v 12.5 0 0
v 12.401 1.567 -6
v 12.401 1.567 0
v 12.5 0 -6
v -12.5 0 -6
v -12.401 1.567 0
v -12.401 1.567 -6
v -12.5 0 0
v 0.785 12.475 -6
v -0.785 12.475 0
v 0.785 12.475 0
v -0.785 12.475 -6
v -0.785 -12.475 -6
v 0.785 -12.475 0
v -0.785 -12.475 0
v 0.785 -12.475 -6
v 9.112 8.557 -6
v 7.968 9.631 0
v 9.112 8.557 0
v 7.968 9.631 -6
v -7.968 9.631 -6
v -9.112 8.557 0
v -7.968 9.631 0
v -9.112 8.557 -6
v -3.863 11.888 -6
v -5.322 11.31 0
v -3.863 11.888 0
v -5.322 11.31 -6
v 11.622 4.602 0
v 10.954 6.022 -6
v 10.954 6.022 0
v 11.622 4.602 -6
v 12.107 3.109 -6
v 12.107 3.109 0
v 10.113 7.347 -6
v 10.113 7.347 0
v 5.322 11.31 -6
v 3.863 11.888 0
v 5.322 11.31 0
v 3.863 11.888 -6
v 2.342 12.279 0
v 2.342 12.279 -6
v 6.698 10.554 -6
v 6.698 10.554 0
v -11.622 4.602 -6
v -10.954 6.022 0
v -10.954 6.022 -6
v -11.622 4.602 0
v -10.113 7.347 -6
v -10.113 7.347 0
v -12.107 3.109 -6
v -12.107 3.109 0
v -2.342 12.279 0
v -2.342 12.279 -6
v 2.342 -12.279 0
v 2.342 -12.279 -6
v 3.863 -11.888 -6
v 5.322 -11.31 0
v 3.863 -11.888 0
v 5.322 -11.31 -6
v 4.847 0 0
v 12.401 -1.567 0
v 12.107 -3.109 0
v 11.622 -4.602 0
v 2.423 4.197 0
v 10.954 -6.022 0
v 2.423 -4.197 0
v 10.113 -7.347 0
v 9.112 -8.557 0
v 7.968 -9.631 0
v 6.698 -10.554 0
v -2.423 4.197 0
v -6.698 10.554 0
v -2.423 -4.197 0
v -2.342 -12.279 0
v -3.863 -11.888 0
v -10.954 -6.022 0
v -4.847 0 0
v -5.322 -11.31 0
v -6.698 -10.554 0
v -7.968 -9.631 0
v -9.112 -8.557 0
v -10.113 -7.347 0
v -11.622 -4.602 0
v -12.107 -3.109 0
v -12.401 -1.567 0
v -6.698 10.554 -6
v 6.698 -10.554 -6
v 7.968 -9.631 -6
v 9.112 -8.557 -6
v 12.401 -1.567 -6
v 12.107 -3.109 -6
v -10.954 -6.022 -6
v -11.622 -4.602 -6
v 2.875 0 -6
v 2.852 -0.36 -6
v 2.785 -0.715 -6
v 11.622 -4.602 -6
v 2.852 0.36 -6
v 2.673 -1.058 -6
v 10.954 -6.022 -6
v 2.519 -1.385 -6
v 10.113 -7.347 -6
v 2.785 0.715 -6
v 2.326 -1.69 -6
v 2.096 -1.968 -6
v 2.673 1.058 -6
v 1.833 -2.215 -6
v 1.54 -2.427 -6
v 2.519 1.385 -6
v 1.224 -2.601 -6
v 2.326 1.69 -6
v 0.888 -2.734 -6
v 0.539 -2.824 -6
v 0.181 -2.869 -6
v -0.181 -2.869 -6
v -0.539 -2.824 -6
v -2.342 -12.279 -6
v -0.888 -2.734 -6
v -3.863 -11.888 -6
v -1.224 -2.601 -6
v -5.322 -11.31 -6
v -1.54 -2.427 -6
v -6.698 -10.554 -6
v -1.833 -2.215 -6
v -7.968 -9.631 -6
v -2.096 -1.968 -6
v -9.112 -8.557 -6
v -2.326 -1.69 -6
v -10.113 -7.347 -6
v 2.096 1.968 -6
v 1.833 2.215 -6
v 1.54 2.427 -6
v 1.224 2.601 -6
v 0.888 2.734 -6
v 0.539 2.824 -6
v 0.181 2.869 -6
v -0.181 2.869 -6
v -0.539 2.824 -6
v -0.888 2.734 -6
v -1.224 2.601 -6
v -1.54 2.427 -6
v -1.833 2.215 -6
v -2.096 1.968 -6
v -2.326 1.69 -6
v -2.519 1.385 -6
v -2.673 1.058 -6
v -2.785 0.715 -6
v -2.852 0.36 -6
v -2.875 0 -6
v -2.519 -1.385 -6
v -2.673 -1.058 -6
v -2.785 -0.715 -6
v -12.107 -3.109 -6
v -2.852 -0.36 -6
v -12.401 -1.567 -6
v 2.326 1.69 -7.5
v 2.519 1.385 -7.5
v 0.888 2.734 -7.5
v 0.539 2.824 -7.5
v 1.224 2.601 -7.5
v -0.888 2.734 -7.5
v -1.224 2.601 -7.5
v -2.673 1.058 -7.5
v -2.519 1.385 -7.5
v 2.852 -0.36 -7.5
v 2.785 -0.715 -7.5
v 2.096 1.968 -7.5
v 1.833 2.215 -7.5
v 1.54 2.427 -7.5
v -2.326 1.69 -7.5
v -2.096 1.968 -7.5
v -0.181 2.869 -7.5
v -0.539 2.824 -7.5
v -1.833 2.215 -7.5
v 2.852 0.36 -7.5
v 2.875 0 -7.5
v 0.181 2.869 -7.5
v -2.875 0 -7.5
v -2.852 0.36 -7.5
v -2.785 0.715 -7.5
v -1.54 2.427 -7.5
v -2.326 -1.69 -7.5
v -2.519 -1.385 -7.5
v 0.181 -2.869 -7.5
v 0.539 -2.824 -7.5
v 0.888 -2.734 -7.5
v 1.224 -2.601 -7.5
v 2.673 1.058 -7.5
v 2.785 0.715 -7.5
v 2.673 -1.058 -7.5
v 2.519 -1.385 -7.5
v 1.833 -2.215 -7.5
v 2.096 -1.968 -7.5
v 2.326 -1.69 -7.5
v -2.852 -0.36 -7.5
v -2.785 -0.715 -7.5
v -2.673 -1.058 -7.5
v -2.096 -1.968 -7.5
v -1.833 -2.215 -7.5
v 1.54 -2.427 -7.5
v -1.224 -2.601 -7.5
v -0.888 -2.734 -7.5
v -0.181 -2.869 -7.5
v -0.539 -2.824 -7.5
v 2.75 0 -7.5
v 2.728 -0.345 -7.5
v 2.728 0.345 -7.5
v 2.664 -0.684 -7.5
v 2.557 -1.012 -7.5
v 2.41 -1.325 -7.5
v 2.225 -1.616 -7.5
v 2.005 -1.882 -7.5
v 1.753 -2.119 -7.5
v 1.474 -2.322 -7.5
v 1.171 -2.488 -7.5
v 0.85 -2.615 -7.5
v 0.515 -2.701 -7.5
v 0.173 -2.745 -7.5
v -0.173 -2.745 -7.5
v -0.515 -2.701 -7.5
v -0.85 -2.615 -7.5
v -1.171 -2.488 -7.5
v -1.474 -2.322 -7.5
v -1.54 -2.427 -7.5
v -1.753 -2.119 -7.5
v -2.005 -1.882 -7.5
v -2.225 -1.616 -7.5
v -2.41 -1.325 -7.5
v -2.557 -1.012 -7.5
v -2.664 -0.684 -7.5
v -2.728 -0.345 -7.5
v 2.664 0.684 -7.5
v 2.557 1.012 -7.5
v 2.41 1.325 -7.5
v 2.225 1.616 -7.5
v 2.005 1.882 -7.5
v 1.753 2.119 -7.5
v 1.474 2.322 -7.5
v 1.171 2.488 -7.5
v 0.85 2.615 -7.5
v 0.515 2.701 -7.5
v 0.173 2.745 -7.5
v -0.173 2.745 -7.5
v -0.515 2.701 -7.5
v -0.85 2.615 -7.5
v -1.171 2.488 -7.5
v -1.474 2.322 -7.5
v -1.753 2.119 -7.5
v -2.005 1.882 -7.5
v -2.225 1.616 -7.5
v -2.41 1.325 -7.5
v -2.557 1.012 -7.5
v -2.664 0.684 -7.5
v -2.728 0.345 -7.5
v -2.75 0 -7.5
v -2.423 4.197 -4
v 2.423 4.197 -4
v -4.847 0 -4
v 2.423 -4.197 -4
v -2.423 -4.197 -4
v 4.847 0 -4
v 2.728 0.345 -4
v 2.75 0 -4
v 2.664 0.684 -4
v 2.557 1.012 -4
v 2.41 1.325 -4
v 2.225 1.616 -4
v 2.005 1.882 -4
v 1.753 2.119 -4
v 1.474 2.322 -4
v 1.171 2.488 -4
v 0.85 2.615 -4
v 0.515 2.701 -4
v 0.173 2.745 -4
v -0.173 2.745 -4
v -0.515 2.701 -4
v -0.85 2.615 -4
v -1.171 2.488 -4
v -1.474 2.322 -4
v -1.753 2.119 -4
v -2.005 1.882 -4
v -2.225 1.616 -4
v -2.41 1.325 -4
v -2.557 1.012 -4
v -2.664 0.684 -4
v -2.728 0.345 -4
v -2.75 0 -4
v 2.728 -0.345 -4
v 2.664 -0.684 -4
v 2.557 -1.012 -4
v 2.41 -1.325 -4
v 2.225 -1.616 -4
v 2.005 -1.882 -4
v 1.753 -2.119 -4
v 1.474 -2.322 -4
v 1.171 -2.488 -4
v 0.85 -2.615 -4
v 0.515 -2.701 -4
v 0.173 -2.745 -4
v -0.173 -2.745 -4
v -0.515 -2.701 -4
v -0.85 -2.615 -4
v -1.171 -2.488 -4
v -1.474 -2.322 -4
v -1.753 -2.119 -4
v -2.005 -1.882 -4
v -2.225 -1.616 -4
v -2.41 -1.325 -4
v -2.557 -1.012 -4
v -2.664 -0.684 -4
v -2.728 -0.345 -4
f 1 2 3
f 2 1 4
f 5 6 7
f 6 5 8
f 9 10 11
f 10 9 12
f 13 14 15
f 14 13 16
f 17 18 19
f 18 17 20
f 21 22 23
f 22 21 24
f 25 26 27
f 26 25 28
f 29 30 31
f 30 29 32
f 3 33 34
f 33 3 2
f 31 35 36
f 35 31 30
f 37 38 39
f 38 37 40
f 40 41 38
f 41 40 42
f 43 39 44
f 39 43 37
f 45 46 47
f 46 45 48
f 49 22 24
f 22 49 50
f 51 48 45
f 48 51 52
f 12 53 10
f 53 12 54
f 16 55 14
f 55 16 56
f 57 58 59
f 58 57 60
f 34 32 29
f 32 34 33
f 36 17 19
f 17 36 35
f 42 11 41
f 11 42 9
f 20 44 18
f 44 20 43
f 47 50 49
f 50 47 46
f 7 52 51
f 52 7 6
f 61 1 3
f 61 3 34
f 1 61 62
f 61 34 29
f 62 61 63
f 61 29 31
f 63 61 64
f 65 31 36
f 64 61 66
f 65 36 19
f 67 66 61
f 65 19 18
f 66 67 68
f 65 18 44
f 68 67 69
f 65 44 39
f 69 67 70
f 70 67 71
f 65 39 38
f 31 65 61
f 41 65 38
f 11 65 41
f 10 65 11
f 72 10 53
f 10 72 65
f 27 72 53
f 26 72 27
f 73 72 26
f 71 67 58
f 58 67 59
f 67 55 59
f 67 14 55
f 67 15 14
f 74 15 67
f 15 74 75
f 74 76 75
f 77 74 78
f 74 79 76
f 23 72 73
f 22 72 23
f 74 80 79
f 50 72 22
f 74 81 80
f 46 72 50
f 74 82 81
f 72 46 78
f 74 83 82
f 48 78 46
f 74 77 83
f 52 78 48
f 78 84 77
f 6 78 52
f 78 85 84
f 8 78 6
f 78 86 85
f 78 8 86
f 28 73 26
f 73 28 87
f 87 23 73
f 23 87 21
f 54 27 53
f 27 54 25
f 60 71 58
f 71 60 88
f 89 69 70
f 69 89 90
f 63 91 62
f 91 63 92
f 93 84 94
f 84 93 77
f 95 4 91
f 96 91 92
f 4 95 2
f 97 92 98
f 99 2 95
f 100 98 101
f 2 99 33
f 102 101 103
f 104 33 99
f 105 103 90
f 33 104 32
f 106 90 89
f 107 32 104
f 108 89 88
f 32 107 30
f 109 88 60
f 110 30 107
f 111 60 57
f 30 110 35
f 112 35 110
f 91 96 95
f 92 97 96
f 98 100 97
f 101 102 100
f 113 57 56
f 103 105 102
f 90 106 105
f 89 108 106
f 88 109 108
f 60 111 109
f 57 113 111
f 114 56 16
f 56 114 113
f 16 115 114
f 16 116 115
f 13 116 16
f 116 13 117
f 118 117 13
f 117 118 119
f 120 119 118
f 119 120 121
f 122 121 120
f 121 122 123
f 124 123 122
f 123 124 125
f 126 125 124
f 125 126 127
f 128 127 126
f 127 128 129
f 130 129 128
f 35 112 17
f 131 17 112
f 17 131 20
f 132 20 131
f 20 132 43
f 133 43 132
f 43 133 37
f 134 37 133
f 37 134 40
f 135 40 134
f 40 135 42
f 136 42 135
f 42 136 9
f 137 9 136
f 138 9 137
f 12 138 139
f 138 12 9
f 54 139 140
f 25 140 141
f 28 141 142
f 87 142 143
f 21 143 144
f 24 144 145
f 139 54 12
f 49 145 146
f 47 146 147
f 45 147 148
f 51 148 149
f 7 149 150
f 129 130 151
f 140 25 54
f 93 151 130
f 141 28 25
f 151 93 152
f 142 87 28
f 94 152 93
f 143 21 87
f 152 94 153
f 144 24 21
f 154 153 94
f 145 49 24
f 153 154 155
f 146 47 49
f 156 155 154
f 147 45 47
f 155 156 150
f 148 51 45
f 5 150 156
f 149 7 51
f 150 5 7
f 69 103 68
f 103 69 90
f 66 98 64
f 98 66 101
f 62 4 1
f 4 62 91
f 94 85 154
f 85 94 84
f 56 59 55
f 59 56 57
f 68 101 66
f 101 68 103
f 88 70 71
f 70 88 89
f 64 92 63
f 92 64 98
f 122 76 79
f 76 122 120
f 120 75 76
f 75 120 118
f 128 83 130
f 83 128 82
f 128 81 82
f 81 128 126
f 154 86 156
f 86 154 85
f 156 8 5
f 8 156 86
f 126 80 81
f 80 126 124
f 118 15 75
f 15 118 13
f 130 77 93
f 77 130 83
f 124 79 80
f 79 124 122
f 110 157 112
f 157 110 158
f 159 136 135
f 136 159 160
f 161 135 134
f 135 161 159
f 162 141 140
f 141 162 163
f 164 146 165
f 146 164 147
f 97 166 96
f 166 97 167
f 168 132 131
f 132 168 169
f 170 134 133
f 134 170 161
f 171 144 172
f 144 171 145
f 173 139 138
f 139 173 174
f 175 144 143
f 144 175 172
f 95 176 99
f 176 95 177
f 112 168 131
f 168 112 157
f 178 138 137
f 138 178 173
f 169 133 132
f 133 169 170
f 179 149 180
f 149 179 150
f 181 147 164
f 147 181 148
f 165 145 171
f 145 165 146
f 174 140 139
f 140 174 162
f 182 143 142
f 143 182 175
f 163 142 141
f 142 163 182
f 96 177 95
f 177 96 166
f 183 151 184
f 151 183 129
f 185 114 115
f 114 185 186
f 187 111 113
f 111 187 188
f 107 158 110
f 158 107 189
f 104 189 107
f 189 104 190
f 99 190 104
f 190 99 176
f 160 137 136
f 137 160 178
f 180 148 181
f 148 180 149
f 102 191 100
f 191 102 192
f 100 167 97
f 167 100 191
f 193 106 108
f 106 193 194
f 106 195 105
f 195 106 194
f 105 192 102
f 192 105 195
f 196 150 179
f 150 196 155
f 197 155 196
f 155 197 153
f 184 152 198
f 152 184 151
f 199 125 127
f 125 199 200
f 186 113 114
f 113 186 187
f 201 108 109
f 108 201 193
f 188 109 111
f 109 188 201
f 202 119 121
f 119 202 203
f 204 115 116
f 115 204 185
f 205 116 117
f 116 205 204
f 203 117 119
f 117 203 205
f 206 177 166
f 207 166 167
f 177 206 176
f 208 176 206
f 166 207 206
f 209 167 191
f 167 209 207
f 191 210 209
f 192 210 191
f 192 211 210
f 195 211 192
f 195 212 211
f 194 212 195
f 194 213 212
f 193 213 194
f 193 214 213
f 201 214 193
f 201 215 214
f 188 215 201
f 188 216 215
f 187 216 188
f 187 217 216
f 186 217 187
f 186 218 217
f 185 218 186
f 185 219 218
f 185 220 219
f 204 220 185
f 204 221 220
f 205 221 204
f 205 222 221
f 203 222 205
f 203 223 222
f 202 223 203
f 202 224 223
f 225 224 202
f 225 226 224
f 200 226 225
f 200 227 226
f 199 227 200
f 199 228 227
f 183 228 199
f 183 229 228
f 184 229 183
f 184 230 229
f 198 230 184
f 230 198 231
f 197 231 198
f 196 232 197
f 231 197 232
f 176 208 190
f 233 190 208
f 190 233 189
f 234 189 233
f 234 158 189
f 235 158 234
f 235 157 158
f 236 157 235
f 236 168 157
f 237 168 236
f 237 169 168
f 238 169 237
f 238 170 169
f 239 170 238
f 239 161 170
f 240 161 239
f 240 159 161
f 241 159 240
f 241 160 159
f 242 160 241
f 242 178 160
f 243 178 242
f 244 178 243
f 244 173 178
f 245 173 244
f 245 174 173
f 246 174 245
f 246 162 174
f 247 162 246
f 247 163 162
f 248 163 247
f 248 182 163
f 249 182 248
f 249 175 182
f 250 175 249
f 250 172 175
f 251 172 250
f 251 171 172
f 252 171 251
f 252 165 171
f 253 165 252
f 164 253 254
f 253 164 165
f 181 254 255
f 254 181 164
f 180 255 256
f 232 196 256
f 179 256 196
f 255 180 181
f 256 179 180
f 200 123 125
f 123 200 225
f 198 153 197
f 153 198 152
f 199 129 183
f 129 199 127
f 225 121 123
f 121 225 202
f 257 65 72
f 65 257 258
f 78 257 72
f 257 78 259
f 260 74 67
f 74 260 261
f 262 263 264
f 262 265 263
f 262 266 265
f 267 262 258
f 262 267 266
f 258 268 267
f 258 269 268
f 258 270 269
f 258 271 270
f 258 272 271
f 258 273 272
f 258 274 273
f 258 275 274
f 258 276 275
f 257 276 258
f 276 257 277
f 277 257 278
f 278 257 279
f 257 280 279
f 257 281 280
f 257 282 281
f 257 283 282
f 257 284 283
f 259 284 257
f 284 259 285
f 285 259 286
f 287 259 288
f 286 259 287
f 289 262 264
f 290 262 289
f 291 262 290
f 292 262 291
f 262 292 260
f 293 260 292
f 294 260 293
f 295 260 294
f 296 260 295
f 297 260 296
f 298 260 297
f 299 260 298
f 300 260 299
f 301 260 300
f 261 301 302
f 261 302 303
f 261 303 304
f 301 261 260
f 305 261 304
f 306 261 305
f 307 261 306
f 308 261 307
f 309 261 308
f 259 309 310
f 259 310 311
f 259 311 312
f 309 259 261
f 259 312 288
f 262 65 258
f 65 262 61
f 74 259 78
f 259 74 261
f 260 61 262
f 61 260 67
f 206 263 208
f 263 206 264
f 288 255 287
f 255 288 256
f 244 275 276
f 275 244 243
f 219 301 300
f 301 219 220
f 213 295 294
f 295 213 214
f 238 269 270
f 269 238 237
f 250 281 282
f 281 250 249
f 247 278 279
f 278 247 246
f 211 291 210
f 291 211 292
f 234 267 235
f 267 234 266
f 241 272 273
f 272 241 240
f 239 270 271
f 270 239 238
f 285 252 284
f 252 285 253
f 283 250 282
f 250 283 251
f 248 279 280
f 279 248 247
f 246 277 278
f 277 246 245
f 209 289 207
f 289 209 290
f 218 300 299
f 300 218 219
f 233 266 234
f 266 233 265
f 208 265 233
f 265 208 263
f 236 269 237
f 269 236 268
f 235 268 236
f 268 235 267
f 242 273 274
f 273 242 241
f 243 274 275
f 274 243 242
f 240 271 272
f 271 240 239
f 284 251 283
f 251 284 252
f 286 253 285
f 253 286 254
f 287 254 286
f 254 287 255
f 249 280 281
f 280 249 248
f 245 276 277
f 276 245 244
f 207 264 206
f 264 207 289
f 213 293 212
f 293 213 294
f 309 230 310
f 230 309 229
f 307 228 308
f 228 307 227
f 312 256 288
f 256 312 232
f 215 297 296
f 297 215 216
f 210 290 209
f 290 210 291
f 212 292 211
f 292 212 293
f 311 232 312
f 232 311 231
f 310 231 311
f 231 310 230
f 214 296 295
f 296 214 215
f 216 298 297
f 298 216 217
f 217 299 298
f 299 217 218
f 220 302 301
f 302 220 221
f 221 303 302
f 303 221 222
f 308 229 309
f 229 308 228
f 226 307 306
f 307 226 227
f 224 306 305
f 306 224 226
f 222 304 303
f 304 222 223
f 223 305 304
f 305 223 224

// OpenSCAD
$fn = 50;


difference() {
	union() {
		translate(v = [0, 0, -6.0000000000]) {
			cylinder(h = 6.0000000000, r = 12.5000000000);
		}
		#translate(v = [0, 0, -7.5000000000]) {
			cylinder(h = 7.5000000000, r = 2.8750000000);
		}
	}
	union() {
		translate(v = [0, 0, 0]) {
			rotate(a = [0, 0, 0]) {
				difference() {
					union() {
						translate(v = [0, 0, -4]) {
							linear_extrude(height = 4) {
								polygon(points = [[4.8468000000, 0.0000000000], [2.4234000000, 4.1974519271], [-2.4234000000, 4.1974519271], [-4.8468000000, 0.0000000000], [-2.4234000000, -4.1974519271], [2.4234000000, -4.1974519271]]);
							}
						}
					}
					union();
				}
			}
		}
		#translate(v = [0, 0, -100.0000000000]) {
			cylinder(h = 200, r = 2.7500000000);
		}
	}
}
